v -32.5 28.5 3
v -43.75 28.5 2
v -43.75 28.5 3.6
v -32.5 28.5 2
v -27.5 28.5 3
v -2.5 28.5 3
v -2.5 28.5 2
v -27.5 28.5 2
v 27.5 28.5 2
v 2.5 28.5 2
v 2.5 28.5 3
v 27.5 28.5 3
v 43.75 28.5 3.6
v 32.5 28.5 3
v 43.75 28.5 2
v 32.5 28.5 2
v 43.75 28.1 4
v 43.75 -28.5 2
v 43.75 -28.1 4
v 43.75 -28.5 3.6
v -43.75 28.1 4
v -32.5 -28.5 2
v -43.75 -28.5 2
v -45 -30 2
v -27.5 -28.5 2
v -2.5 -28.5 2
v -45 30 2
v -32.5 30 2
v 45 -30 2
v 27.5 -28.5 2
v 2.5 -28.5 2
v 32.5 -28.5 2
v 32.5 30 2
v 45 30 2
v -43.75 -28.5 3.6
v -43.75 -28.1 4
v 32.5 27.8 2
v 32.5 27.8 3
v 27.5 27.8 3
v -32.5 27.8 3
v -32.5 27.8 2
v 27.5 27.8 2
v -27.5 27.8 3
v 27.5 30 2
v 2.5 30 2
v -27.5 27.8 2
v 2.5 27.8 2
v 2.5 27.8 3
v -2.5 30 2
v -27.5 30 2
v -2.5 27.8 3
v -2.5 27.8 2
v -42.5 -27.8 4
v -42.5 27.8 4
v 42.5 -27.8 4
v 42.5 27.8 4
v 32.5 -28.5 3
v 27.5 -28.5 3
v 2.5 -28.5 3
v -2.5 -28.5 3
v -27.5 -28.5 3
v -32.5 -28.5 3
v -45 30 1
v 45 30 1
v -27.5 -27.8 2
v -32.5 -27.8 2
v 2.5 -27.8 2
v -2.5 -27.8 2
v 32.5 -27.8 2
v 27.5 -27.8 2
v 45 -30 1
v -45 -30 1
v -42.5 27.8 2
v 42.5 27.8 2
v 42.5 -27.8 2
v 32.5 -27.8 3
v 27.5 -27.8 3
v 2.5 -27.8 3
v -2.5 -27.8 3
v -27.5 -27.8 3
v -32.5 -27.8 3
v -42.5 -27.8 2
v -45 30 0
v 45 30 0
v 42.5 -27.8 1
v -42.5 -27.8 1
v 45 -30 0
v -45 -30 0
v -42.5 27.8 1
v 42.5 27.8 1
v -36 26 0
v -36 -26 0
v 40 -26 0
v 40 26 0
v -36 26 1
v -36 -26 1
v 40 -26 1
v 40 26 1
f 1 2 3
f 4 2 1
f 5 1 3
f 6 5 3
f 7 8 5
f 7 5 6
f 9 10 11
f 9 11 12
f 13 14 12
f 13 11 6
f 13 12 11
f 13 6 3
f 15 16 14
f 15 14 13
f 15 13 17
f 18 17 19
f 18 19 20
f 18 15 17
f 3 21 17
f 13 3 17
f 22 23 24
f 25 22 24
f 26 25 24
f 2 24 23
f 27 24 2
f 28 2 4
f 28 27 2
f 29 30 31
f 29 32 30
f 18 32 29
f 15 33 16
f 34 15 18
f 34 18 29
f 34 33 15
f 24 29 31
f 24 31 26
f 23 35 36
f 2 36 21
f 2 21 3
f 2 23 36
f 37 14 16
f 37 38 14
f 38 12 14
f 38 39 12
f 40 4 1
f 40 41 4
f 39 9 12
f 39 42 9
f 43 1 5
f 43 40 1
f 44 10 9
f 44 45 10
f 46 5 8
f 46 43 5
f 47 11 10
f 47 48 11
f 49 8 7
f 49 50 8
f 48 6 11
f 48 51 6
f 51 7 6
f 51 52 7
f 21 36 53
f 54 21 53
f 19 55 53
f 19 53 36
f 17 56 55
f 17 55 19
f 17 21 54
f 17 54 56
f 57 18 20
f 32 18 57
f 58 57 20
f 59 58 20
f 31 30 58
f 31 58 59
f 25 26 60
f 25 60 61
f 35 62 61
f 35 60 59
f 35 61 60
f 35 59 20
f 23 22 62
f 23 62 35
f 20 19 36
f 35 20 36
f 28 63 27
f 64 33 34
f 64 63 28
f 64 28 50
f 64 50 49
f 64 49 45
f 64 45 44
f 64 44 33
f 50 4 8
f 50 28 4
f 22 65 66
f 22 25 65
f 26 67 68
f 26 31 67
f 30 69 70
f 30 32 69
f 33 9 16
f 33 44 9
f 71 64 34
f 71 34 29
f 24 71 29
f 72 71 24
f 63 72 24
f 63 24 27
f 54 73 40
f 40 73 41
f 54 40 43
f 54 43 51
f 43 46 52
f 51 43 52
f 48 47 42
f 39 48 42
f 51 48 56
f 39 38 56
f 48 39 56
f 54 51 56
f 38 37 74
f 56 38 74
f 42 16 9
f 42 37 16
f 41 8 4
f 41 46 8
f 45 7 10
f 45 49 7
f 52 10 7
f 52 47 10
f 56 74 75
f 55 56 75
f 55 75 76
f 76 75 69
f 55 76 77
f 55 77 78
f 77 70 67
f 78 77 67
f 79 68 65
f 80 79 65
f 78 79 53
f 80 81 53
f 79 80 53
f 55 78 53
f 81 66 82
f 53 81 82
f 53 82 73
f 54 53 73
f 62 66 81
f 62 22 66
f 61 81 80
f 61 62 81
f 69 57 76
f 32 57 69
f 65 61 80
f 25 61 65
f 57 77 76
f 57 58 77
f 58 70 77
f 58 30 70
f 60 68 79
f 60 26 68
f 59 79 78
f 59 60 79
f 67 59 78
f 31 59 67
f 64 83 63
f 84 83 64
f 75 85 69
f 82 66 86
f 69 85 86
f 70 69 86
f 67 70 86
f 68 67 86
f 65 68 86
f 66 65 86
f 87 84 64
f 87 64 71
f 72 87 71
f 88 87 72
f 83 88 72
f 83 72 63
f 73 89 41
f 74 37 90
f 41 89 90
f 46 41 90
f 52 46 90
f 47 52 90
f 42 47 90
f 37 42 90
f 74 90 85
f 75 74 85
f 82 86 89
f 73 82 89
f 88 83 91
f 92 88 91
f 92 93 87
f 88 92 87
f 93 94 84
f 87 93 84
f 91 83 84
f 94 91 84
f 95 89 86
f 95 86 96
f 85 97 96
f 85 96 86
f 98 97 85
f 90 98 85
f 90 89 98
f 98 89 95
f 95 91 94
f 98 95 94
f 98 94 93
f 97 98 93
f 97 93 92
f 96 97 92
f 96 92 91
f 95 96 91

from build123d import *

# Parameters (mm, degrees)
SKETCH_W      = 90
SKETCH_H      = 60
SKETCH_W_2    = 76
SKETCH_H_2    = 52
PAD_DEPTH     = 1
SKETCH001_W   = 90
SKETCH001_H   = 60
SKETCH001_W_2 = 85
SKETCH001_H_2 = 55.6
PAD001_DEPTH  = 1
SKETCH002_W   = 87.5
SKETCH002_H   = 57
SKETCH002_W_2 = 85
SKETCH002_H_2 = 55.6
PAD002_DEPTH  = 2
SKETCH003_W   = 5
SKETCH003_H   = 1
POCKET_DEPTH  = 58.501
CHAMFER_SIZE  = 0.4


with BuildPart() as part:
    # Sketch → Pad (new body)
    with BuildSketch(Plane.XY):
        Rectangle(SKETCH_W, SKETCH_H)
        with Locations((2, 0)):
            Rectangle(SKETCH_W_2, SKETCH_H_2, mode=Mode.SUBTRACT)
    extrude(amount=PAD_DEPTH)

    # Sketch001 → Pad001 (new body)
    with BuildSketch(Plane.XY.offset(1)):
        Rectangle(SKETCH001_W, SKETCH001_H)
        Rectangle(SKETCH001_W_2, SKETCH001_H_2, mode=Mode.SUBTRACT)
    extrude(amount=PAD001_DEPTH)

    # Sketch002 → Pad002 (new body)
    with BuildSketch(Plane.XY.offset(2)):
        Rectangle(SKETCH002_W, SKETCH002_H)
        Rectangle(SKETCH002_W_2, SKETCH002_H_2, mode=Mode.SUBTRACT)
    extrude(amount=PAD002_DEPTH)

    # Sketch003 → Pocket (cut, through all)
    with BuildSketch(Plane.XZ.offset(28.5)):
        with Locations((-30, 2.5)):
            Rectangle(SKETCH003_W, SKETCH003_H)
        with Locations((0, 2.5)):
            Rectangle(SKETCH003_W, SKETCH003_H)
        with Locations((30, 2.5)):
            Rectangle(SKETCH003_W, SKETCH003_H)
    extrude(amount=-POCKET_DEPTH, mode=Mode.SUBTRACT)

    # Chamfer
    chamfer_edges = [part.edges().sort_by_distance(p)[0] for p in [
        (0, -28.5, 4),
        (0, 28.5, 4),
    ]]
    chamfer(chamfer_edges, length=CHAMFER_SIZE)


solid = part.part
